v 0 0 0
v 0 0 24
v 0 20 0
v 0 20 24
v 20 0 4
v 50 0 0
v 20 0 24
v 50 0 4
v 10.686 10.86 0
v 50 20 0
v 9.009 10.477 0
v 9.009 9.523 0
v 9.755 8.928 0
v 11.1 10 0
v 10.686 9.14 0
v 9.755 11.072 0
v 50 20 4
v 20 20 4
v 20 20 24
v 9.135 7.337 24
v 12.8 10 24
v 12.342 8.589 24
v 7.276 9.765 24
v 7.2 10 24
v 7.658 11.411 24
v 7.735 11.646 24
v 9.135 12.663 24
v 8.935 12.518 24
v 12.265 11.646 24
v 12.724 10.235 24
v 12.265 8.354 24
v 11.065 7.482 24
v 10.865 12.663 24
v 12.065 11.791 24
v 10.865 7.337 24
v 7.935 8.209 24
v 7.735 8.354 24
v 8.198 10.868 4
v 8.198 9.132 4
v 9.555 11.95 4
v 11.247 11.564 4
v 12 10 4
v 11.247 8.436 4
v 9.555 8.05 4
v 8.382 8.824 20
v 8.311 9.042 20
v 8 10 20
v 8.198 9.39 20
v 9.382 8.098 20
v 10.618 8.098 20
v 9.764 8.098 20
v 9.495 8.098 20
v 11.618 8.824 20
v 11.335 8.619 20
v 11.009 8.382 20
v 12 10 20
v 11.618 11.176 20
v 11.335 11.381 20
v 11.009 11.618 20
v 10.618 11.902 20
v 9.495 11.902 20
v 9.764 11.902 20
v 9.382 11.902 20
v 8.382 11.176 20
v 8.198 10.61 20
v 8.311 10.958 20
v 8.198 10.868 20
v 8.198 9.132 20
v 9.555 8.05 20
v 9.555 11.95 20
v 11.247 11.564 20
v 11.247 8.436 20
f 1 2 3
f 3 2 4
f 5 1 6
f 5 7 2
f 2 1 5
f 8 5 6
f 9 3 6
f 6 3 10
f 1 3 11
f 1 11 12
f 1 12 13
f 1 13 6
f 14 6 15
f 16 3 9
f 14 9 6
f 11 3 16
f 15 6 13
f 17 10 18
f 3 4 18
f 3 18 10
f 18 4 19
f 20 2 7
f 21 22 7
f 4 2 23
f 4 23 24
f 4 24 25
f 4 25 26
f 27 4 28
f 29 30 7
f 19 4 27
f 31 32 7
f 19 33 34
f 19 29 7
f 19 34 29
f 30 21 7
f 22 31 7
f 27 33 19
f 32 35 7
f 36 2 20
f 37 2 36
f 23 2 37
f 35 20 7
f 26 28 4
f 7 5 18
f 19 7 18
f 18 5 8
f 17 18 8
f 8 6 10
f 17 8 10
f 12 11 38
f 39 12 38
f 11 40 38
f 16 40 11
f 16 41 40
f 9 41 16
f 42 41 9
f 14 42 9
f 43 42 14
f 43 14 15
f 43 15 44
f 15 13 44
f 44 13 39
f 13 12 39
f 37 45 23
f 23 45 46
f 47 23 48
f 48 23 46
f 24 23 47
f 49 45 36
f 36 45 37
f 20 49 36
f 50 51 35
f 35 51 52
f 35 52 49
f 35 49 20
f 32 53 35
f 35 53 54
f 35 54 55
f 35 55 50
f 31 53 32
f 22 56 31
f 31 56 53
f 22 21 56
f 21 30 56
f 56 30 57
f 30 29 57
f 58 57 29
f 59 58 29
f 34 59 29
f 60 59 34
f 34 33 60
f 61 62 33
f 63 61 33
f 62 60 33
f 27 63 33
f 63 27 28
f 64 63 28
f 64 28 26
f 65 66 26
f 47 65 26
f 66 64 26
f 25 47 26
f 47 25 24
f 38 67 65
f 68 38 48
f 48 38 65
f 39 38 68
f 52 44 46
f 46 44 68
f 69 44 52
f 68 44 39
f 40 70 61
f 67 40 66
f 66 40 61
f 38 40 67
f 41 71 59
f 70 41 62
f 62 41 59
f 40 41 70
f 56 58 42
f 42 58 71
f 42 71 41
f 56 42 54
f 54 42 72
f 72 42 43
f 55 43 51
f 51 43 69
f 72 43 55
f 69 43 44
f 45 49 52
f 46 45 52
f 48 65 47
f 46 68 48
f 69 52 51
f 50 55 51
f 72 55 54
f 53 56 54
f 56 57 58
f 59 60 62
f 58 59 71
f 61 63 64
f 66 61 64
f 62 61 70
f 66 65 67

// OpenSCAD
difference(){
	union(){
		cube([50,20,4]);
		cube([20,20,24]);
	}
	union(){
	translate([10,10,20]) cylinder(r1=2,35, r2=3, h=5);
	translate([10,10,4]) cylinder(r=2,36, h=16);
	translate([10,10,0]) cylinder(r1=1.1, r2=2,35, h=4);
	}
}
